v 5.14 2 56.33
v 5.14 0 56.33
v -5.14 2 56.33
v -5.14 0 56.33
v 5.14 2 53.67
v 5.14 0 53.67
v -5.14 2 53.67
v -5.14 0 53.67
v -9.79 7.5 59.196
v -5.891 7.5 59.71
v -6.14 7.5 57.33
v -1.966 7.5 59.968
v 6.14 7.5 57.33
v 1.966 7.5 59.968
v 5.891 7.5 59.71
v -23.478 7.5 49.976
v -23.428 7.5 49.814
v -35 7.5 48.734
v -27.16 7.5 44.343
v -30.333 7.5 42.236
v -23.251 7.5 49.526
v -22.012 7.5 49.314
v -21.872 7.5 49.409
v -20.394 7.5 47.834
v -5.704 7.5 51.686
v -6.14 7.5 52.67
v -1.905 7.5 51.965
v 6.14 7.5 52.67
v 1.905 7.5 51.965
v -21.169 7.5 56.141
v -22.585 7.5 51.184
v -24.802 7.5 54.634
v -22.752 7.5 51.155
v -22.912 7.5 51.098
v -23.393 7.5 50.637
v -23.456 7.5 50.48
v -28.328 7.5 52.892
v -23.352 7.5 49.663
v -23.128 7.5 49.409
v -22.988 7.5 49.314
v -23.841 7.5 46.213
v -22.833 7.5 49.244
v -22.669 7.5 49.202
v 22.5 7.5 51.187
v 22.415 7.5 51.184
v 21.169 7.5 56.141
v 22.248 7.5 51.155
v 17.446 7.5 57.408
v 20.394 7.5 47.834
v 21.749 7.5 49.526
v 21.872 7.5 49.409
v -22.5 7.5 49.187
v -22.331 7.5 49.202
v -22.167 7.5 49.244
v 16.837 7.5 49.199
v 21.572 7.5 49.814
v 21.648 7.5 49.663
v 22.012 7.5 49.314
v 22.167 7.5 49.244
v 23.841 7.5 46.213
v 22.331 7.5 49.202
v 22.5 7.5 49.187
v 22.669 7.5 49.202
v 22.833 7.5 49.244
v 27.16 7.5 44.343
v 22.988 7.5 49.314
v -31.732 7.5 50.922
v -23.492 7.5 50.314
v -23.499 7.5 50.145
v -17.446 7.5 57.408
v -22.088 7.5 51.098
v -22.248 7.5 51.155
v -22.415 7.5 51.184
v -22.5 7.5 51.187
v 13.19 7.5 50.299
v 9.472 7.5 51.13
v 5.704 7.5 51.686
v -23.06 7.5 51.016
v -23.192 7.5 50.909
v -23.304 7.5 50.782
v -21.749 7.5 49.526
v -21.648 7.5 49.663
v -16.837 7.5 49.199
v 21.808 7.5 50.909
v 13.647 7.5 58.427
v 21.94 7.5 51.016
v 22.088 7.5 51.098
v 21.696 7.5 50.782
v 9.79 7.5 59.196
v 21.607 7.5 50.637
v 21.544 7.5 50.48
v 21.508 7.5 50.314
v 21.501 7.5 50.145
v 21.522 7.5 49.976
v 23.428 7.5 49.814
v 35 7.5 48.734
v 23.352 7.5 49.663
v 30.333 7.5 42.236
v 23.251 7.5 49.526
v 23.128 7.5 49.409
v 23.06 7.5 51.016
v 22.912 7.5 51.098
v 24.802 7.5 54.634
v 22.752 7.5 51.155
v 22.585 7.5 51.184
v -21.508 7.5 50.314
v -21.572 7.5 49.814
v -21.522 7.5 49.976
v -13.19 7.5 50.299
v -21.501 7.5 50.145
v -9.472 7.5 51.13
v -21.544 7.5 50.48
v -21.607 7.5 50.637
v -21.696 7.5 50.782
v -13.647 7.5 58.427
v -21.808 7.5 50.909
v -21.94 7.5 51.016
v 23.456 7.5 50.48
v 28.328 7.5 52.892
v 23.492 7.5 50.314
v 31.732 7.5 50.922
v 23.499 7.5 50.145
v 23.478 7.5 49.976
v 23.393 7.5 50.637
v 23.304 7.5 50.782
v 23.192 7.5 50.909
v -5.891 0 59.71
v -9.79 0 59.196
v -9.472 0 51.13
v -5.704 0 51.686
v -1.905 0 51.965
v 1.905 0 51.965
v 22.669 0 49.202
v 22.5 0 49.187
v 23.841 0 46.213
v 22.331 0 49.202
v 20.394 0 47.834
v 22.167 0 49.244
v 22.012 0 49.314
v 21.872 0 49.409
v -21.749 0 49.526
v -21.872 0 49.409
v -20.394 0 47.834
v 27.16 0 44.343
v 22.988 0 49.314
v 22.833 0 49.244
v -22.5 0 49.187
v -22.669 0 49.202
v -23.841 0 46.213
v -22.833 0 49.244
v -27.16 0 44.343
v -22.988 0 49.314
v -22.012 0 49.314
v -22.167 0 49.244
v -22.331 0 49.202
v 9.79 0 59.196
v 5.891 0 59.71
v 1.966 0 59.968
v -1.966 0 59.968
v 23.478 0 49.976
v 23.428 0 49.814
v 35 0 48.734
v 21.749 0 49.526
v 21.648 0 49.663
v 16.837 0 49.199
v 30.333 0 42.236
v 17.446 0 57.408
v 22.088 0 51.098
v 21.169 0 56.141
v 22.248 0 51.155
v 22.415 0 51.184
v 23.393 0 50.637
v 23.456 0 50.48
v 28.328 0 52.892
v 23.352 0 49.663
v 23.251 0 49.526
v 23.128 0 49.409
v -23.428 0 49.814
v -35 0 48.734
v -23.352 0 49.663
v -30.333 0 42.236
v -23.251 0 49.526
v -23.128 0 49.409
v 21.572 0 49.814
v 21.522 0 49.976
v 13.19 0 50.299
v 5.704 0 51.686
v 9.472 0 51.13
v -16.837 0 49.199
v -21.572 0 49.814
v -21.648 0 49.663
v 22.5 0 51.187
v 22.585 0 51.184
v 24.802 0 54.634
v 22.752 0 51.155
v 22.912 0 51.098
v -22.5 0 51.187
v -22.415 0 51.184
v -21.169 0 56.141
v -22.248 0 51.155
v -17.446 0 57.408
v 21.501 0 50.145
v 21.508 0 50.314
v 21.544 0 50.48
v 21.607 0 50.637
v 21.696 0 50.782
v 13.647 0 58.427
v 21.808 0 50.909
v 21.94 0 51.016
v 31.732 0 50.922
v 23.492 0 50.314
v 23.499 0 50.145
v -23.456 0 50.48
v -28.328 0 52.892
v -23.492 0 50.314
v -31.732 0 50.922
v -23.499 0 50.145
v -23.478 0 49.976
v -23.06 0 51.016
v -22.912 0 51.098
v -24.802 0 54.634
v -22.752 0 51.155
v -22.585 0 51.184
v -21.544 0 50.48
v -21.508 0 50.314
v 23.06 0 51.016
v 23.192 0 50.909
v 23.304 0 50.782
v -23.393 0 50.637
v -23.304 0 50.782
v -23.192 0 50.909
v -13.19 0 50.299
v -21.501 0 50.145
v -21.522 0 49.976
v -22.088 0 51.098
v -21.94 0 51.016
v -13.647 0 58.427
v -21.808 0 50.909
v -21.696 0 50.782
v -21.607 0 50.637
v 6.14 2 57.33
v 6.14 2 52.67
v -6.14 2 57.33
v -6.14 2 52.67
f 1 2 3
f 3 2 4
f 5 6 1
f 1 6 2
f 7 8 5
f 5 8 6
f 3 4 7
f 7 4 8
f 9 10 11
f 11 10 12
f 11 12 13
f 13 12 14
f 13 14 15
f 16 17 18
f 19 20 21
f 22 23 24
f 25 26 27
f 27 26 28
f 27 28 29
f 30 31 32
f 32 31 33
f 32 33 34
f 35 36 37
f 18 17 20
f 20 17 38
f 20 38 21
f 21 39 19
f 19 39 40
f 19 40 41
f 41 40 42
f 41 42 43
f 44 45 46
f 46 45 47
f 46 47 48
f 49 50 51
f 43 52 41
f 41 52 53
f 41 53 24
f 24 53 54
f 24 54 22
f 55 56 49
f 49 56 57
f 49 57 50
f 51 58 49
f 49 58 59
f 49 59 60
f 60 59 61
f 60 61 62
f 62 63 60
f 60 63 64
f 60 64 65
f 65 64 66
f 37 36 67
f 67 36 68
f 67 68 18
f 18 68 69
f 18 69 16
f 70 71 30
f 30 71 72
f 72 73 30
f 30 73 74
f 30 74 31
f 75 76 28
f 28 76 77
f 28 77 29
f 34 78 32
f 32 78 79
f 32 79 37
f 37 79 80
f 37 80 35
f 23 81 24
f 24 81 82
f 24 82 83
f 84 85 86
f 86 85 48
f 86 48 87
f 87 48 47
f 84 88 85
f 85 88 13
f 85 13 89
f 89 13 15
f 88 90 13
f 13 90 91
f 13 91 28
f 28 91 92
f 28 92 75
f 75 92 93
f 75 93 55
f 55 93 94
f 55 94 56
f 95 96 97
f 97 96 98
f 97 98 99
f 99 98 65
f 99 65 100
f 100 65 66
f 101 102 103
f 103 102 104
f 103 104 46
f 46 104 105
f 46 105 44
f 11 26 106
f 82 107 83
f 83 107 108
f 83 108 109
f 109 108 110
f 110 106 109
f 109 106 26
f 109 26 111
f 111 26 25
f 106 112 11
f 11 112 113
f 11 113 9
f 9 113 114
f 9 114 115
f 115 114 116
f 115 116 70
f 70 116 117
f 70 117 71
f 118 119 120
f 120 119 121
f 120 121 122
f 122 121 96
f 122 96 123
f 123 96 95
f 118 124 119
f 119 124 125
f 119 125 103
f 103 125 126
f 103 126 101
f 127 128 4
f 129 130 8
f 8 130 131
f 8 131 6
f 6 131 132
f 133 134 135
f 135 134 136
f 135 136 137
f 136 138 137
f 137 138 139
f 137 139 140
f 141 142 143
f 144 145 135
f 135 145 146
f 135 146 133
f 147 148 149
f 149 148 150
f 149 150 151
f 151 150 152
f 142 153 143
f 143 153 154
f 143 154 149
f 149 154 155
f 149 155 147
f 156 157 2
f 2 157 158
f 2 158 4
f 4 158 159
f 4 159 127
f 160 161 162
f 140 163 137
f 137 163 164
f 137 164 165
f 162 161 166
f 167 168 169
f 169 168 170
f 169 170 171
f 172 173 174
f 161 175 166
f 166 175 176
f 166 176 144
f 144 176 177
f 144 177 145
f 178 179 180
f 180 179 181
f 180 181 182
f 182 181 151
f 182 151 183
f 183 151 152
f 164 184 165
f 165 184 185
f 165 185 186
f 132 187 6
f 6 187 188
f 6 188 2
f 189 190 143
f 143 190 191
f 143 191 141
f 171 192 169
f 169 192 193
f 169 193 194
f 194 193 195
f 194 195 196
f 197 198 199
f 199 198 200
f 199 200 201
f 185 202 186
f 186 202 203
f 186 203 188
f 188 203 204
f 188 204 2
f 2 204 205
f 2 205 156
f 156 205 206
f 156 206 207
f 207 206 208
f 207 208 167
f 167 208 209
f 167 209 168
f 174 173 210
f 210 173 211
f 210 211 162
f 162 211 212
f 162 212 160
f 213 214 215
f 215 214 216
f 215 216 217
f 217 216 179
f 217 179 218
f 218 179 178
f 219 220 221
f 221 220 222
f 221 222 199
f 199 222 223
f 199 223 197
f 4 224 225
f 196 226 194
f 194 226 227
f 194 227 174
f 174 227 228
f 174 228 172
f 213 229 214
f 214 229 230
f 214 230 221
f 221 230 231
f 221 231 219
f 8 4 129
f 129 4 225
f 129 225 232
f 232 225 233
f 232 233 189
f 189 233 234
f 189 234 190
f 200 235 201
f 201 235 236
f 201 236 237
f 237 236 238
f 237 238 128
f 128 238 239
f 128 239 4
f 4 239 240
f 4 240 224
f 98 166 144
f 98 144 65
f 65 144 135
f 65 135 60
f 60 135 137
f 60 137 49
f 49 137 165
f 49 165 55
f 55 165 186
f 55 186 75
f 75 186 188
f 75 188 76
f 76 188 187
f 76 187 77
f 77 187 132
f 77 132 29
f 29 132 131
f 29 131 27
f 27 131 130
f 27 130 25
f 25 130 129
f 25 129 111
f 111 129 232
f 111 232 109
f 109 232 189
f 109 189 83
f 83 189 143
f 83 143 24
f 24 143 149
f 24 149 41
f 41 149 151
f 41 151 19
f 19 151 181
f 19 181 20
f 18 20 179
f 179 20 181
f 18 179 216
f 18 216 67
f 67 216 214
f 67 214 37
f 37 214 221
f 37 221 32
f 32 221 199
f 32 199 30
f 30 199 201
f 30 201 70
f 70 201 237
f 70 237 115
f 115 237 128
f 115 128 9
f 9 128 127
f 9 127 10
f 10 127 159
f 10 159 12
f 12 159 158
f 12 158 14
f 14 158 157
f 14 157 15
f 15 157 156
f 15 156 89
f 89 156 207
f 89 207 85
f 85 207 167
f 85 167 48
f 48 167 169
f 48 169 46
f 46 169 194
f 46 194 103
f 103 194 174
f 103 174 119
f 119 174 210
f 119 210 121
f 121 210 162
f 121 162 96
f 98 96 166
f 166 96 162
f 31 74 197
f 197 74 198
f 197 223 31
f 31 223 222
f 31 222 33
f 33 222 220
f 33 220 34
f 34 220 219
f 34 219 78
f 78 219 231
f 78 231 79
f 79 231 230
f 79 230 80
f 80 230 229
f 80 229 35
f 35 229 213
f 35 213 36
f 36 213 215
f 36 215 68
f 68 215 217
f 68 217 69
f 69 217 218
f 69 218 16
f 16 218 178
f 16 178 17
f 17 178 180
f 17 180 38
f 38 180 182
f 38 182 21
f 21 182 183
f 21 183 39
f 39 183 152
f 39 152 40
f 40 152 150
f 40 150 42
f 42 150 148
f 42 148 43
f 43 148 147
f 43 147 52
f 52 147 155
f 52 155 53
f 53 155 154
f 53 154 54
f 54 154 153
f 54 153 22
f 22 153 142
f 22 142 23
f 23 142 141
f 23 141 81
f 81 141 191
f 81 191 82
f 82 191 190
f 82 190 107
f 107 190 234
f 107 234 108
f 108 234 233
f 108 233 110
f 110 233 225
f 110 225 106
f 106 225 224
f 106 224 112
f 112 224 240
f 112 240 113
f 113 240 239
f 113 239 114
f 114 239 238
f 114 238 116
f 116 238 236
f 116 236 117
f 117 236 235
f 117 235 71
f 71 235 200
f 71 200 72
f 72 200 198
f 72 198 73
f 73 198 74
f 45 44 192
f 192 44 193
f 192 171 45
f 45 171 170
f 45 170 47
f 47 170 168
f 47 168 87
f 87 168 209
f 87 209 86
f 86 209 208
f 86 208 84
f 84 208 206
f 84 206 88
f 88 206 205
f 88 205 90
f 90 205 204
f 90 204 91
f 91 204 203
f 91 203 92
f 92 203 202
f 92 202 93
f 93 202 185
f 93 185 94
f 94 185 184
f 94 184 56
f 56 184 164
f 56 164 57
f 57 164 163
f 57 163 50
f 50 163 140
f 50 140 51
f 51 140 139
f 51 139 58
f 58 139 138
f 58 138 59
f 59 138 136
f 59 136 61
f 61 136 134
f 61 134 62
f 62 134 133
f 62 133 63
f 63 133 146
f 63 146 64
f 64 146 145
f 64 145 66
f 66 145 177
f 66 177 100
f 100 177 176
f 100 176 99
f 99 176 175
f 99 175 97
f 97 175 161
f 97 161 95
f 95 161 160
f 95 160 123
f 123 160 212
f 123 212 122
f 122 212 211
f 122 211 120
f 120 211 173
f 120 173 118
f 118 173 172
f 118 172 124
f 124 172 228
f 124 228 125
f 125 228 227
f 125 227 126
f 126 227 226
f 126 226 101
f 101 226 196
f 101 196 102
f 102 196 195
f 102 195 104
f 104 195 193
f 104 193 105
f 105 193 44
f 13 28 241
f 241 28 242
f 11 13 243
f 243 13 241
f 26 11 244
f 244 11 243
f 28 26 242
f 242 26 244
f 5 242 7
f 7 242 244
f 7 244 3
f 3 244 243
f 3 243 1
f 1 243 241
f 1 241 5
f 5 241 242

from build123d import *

# Parameters (mm, degrees)
CROQUIS1_R              = 1
CROQUIS1_W              = 10.28
CROQUIS1_H              = 2.66
SALIENTE_EXTRUIR1_DEPTH = 7.5
CROQUIS2_W              = 12.28
CROQUIS2_H              = 4.66
CORTAR_EXTRUIR1_DEPTH   = 5.5


with BuildPart() as part:
    # Croquis1 → Saliente-Extruir1 (new body)
    with BuildSketch(Plane(origin=(0, 0, 0), x_dir=(1, 0, 0), z_dir=(0, 1, 0))):
        with BuildLine():
            Line((35, -48.733971724), (30.333333333, -42.236108828))
            ThreePointArc((30.333333333, -42.236108828), (0, -52), (-30.333333333, -42.236108828))
            Line((-30.333333333, -42.236108828), (-35, -48.733971724))
            ThreePointArc((-35, -48.733971724), (0, -60), (35, -48.733971724))
        make_face()
        with Locations((-22.5, -50.18714975)):
            Circle(CROQUIS1_R, mode=Mode.SUBTRACT)
        with Locations((22.5, -50.18714975)):
            Circle(CROQUIS1_R, mode=Mode.SUBTRACT)
        with Locations((0, -55)):
            Rectangle(CROQUIS1_W, CROQUIS1_H, mode=Mode.SUBTRACT)
    extrude(amount=SALIENTE_EXTRUIR1_DEPTH)

    # Croquis2 → Cortar-Extruir1 (cut)
    with BuildSketch(Plane(origin=(0, 7.5, 0), x_dir=(1, 0, 0), z_dir=(0, 1, 0))):
        with Locations((0, -55)):
            Rectangle(CROQUIS2_W, CROQUIS2_H)
    extrude(amount=-CORTAR_EXTRUIR1_DEPTH, mode=Mode.SUBTRACT)


solid = part.part
